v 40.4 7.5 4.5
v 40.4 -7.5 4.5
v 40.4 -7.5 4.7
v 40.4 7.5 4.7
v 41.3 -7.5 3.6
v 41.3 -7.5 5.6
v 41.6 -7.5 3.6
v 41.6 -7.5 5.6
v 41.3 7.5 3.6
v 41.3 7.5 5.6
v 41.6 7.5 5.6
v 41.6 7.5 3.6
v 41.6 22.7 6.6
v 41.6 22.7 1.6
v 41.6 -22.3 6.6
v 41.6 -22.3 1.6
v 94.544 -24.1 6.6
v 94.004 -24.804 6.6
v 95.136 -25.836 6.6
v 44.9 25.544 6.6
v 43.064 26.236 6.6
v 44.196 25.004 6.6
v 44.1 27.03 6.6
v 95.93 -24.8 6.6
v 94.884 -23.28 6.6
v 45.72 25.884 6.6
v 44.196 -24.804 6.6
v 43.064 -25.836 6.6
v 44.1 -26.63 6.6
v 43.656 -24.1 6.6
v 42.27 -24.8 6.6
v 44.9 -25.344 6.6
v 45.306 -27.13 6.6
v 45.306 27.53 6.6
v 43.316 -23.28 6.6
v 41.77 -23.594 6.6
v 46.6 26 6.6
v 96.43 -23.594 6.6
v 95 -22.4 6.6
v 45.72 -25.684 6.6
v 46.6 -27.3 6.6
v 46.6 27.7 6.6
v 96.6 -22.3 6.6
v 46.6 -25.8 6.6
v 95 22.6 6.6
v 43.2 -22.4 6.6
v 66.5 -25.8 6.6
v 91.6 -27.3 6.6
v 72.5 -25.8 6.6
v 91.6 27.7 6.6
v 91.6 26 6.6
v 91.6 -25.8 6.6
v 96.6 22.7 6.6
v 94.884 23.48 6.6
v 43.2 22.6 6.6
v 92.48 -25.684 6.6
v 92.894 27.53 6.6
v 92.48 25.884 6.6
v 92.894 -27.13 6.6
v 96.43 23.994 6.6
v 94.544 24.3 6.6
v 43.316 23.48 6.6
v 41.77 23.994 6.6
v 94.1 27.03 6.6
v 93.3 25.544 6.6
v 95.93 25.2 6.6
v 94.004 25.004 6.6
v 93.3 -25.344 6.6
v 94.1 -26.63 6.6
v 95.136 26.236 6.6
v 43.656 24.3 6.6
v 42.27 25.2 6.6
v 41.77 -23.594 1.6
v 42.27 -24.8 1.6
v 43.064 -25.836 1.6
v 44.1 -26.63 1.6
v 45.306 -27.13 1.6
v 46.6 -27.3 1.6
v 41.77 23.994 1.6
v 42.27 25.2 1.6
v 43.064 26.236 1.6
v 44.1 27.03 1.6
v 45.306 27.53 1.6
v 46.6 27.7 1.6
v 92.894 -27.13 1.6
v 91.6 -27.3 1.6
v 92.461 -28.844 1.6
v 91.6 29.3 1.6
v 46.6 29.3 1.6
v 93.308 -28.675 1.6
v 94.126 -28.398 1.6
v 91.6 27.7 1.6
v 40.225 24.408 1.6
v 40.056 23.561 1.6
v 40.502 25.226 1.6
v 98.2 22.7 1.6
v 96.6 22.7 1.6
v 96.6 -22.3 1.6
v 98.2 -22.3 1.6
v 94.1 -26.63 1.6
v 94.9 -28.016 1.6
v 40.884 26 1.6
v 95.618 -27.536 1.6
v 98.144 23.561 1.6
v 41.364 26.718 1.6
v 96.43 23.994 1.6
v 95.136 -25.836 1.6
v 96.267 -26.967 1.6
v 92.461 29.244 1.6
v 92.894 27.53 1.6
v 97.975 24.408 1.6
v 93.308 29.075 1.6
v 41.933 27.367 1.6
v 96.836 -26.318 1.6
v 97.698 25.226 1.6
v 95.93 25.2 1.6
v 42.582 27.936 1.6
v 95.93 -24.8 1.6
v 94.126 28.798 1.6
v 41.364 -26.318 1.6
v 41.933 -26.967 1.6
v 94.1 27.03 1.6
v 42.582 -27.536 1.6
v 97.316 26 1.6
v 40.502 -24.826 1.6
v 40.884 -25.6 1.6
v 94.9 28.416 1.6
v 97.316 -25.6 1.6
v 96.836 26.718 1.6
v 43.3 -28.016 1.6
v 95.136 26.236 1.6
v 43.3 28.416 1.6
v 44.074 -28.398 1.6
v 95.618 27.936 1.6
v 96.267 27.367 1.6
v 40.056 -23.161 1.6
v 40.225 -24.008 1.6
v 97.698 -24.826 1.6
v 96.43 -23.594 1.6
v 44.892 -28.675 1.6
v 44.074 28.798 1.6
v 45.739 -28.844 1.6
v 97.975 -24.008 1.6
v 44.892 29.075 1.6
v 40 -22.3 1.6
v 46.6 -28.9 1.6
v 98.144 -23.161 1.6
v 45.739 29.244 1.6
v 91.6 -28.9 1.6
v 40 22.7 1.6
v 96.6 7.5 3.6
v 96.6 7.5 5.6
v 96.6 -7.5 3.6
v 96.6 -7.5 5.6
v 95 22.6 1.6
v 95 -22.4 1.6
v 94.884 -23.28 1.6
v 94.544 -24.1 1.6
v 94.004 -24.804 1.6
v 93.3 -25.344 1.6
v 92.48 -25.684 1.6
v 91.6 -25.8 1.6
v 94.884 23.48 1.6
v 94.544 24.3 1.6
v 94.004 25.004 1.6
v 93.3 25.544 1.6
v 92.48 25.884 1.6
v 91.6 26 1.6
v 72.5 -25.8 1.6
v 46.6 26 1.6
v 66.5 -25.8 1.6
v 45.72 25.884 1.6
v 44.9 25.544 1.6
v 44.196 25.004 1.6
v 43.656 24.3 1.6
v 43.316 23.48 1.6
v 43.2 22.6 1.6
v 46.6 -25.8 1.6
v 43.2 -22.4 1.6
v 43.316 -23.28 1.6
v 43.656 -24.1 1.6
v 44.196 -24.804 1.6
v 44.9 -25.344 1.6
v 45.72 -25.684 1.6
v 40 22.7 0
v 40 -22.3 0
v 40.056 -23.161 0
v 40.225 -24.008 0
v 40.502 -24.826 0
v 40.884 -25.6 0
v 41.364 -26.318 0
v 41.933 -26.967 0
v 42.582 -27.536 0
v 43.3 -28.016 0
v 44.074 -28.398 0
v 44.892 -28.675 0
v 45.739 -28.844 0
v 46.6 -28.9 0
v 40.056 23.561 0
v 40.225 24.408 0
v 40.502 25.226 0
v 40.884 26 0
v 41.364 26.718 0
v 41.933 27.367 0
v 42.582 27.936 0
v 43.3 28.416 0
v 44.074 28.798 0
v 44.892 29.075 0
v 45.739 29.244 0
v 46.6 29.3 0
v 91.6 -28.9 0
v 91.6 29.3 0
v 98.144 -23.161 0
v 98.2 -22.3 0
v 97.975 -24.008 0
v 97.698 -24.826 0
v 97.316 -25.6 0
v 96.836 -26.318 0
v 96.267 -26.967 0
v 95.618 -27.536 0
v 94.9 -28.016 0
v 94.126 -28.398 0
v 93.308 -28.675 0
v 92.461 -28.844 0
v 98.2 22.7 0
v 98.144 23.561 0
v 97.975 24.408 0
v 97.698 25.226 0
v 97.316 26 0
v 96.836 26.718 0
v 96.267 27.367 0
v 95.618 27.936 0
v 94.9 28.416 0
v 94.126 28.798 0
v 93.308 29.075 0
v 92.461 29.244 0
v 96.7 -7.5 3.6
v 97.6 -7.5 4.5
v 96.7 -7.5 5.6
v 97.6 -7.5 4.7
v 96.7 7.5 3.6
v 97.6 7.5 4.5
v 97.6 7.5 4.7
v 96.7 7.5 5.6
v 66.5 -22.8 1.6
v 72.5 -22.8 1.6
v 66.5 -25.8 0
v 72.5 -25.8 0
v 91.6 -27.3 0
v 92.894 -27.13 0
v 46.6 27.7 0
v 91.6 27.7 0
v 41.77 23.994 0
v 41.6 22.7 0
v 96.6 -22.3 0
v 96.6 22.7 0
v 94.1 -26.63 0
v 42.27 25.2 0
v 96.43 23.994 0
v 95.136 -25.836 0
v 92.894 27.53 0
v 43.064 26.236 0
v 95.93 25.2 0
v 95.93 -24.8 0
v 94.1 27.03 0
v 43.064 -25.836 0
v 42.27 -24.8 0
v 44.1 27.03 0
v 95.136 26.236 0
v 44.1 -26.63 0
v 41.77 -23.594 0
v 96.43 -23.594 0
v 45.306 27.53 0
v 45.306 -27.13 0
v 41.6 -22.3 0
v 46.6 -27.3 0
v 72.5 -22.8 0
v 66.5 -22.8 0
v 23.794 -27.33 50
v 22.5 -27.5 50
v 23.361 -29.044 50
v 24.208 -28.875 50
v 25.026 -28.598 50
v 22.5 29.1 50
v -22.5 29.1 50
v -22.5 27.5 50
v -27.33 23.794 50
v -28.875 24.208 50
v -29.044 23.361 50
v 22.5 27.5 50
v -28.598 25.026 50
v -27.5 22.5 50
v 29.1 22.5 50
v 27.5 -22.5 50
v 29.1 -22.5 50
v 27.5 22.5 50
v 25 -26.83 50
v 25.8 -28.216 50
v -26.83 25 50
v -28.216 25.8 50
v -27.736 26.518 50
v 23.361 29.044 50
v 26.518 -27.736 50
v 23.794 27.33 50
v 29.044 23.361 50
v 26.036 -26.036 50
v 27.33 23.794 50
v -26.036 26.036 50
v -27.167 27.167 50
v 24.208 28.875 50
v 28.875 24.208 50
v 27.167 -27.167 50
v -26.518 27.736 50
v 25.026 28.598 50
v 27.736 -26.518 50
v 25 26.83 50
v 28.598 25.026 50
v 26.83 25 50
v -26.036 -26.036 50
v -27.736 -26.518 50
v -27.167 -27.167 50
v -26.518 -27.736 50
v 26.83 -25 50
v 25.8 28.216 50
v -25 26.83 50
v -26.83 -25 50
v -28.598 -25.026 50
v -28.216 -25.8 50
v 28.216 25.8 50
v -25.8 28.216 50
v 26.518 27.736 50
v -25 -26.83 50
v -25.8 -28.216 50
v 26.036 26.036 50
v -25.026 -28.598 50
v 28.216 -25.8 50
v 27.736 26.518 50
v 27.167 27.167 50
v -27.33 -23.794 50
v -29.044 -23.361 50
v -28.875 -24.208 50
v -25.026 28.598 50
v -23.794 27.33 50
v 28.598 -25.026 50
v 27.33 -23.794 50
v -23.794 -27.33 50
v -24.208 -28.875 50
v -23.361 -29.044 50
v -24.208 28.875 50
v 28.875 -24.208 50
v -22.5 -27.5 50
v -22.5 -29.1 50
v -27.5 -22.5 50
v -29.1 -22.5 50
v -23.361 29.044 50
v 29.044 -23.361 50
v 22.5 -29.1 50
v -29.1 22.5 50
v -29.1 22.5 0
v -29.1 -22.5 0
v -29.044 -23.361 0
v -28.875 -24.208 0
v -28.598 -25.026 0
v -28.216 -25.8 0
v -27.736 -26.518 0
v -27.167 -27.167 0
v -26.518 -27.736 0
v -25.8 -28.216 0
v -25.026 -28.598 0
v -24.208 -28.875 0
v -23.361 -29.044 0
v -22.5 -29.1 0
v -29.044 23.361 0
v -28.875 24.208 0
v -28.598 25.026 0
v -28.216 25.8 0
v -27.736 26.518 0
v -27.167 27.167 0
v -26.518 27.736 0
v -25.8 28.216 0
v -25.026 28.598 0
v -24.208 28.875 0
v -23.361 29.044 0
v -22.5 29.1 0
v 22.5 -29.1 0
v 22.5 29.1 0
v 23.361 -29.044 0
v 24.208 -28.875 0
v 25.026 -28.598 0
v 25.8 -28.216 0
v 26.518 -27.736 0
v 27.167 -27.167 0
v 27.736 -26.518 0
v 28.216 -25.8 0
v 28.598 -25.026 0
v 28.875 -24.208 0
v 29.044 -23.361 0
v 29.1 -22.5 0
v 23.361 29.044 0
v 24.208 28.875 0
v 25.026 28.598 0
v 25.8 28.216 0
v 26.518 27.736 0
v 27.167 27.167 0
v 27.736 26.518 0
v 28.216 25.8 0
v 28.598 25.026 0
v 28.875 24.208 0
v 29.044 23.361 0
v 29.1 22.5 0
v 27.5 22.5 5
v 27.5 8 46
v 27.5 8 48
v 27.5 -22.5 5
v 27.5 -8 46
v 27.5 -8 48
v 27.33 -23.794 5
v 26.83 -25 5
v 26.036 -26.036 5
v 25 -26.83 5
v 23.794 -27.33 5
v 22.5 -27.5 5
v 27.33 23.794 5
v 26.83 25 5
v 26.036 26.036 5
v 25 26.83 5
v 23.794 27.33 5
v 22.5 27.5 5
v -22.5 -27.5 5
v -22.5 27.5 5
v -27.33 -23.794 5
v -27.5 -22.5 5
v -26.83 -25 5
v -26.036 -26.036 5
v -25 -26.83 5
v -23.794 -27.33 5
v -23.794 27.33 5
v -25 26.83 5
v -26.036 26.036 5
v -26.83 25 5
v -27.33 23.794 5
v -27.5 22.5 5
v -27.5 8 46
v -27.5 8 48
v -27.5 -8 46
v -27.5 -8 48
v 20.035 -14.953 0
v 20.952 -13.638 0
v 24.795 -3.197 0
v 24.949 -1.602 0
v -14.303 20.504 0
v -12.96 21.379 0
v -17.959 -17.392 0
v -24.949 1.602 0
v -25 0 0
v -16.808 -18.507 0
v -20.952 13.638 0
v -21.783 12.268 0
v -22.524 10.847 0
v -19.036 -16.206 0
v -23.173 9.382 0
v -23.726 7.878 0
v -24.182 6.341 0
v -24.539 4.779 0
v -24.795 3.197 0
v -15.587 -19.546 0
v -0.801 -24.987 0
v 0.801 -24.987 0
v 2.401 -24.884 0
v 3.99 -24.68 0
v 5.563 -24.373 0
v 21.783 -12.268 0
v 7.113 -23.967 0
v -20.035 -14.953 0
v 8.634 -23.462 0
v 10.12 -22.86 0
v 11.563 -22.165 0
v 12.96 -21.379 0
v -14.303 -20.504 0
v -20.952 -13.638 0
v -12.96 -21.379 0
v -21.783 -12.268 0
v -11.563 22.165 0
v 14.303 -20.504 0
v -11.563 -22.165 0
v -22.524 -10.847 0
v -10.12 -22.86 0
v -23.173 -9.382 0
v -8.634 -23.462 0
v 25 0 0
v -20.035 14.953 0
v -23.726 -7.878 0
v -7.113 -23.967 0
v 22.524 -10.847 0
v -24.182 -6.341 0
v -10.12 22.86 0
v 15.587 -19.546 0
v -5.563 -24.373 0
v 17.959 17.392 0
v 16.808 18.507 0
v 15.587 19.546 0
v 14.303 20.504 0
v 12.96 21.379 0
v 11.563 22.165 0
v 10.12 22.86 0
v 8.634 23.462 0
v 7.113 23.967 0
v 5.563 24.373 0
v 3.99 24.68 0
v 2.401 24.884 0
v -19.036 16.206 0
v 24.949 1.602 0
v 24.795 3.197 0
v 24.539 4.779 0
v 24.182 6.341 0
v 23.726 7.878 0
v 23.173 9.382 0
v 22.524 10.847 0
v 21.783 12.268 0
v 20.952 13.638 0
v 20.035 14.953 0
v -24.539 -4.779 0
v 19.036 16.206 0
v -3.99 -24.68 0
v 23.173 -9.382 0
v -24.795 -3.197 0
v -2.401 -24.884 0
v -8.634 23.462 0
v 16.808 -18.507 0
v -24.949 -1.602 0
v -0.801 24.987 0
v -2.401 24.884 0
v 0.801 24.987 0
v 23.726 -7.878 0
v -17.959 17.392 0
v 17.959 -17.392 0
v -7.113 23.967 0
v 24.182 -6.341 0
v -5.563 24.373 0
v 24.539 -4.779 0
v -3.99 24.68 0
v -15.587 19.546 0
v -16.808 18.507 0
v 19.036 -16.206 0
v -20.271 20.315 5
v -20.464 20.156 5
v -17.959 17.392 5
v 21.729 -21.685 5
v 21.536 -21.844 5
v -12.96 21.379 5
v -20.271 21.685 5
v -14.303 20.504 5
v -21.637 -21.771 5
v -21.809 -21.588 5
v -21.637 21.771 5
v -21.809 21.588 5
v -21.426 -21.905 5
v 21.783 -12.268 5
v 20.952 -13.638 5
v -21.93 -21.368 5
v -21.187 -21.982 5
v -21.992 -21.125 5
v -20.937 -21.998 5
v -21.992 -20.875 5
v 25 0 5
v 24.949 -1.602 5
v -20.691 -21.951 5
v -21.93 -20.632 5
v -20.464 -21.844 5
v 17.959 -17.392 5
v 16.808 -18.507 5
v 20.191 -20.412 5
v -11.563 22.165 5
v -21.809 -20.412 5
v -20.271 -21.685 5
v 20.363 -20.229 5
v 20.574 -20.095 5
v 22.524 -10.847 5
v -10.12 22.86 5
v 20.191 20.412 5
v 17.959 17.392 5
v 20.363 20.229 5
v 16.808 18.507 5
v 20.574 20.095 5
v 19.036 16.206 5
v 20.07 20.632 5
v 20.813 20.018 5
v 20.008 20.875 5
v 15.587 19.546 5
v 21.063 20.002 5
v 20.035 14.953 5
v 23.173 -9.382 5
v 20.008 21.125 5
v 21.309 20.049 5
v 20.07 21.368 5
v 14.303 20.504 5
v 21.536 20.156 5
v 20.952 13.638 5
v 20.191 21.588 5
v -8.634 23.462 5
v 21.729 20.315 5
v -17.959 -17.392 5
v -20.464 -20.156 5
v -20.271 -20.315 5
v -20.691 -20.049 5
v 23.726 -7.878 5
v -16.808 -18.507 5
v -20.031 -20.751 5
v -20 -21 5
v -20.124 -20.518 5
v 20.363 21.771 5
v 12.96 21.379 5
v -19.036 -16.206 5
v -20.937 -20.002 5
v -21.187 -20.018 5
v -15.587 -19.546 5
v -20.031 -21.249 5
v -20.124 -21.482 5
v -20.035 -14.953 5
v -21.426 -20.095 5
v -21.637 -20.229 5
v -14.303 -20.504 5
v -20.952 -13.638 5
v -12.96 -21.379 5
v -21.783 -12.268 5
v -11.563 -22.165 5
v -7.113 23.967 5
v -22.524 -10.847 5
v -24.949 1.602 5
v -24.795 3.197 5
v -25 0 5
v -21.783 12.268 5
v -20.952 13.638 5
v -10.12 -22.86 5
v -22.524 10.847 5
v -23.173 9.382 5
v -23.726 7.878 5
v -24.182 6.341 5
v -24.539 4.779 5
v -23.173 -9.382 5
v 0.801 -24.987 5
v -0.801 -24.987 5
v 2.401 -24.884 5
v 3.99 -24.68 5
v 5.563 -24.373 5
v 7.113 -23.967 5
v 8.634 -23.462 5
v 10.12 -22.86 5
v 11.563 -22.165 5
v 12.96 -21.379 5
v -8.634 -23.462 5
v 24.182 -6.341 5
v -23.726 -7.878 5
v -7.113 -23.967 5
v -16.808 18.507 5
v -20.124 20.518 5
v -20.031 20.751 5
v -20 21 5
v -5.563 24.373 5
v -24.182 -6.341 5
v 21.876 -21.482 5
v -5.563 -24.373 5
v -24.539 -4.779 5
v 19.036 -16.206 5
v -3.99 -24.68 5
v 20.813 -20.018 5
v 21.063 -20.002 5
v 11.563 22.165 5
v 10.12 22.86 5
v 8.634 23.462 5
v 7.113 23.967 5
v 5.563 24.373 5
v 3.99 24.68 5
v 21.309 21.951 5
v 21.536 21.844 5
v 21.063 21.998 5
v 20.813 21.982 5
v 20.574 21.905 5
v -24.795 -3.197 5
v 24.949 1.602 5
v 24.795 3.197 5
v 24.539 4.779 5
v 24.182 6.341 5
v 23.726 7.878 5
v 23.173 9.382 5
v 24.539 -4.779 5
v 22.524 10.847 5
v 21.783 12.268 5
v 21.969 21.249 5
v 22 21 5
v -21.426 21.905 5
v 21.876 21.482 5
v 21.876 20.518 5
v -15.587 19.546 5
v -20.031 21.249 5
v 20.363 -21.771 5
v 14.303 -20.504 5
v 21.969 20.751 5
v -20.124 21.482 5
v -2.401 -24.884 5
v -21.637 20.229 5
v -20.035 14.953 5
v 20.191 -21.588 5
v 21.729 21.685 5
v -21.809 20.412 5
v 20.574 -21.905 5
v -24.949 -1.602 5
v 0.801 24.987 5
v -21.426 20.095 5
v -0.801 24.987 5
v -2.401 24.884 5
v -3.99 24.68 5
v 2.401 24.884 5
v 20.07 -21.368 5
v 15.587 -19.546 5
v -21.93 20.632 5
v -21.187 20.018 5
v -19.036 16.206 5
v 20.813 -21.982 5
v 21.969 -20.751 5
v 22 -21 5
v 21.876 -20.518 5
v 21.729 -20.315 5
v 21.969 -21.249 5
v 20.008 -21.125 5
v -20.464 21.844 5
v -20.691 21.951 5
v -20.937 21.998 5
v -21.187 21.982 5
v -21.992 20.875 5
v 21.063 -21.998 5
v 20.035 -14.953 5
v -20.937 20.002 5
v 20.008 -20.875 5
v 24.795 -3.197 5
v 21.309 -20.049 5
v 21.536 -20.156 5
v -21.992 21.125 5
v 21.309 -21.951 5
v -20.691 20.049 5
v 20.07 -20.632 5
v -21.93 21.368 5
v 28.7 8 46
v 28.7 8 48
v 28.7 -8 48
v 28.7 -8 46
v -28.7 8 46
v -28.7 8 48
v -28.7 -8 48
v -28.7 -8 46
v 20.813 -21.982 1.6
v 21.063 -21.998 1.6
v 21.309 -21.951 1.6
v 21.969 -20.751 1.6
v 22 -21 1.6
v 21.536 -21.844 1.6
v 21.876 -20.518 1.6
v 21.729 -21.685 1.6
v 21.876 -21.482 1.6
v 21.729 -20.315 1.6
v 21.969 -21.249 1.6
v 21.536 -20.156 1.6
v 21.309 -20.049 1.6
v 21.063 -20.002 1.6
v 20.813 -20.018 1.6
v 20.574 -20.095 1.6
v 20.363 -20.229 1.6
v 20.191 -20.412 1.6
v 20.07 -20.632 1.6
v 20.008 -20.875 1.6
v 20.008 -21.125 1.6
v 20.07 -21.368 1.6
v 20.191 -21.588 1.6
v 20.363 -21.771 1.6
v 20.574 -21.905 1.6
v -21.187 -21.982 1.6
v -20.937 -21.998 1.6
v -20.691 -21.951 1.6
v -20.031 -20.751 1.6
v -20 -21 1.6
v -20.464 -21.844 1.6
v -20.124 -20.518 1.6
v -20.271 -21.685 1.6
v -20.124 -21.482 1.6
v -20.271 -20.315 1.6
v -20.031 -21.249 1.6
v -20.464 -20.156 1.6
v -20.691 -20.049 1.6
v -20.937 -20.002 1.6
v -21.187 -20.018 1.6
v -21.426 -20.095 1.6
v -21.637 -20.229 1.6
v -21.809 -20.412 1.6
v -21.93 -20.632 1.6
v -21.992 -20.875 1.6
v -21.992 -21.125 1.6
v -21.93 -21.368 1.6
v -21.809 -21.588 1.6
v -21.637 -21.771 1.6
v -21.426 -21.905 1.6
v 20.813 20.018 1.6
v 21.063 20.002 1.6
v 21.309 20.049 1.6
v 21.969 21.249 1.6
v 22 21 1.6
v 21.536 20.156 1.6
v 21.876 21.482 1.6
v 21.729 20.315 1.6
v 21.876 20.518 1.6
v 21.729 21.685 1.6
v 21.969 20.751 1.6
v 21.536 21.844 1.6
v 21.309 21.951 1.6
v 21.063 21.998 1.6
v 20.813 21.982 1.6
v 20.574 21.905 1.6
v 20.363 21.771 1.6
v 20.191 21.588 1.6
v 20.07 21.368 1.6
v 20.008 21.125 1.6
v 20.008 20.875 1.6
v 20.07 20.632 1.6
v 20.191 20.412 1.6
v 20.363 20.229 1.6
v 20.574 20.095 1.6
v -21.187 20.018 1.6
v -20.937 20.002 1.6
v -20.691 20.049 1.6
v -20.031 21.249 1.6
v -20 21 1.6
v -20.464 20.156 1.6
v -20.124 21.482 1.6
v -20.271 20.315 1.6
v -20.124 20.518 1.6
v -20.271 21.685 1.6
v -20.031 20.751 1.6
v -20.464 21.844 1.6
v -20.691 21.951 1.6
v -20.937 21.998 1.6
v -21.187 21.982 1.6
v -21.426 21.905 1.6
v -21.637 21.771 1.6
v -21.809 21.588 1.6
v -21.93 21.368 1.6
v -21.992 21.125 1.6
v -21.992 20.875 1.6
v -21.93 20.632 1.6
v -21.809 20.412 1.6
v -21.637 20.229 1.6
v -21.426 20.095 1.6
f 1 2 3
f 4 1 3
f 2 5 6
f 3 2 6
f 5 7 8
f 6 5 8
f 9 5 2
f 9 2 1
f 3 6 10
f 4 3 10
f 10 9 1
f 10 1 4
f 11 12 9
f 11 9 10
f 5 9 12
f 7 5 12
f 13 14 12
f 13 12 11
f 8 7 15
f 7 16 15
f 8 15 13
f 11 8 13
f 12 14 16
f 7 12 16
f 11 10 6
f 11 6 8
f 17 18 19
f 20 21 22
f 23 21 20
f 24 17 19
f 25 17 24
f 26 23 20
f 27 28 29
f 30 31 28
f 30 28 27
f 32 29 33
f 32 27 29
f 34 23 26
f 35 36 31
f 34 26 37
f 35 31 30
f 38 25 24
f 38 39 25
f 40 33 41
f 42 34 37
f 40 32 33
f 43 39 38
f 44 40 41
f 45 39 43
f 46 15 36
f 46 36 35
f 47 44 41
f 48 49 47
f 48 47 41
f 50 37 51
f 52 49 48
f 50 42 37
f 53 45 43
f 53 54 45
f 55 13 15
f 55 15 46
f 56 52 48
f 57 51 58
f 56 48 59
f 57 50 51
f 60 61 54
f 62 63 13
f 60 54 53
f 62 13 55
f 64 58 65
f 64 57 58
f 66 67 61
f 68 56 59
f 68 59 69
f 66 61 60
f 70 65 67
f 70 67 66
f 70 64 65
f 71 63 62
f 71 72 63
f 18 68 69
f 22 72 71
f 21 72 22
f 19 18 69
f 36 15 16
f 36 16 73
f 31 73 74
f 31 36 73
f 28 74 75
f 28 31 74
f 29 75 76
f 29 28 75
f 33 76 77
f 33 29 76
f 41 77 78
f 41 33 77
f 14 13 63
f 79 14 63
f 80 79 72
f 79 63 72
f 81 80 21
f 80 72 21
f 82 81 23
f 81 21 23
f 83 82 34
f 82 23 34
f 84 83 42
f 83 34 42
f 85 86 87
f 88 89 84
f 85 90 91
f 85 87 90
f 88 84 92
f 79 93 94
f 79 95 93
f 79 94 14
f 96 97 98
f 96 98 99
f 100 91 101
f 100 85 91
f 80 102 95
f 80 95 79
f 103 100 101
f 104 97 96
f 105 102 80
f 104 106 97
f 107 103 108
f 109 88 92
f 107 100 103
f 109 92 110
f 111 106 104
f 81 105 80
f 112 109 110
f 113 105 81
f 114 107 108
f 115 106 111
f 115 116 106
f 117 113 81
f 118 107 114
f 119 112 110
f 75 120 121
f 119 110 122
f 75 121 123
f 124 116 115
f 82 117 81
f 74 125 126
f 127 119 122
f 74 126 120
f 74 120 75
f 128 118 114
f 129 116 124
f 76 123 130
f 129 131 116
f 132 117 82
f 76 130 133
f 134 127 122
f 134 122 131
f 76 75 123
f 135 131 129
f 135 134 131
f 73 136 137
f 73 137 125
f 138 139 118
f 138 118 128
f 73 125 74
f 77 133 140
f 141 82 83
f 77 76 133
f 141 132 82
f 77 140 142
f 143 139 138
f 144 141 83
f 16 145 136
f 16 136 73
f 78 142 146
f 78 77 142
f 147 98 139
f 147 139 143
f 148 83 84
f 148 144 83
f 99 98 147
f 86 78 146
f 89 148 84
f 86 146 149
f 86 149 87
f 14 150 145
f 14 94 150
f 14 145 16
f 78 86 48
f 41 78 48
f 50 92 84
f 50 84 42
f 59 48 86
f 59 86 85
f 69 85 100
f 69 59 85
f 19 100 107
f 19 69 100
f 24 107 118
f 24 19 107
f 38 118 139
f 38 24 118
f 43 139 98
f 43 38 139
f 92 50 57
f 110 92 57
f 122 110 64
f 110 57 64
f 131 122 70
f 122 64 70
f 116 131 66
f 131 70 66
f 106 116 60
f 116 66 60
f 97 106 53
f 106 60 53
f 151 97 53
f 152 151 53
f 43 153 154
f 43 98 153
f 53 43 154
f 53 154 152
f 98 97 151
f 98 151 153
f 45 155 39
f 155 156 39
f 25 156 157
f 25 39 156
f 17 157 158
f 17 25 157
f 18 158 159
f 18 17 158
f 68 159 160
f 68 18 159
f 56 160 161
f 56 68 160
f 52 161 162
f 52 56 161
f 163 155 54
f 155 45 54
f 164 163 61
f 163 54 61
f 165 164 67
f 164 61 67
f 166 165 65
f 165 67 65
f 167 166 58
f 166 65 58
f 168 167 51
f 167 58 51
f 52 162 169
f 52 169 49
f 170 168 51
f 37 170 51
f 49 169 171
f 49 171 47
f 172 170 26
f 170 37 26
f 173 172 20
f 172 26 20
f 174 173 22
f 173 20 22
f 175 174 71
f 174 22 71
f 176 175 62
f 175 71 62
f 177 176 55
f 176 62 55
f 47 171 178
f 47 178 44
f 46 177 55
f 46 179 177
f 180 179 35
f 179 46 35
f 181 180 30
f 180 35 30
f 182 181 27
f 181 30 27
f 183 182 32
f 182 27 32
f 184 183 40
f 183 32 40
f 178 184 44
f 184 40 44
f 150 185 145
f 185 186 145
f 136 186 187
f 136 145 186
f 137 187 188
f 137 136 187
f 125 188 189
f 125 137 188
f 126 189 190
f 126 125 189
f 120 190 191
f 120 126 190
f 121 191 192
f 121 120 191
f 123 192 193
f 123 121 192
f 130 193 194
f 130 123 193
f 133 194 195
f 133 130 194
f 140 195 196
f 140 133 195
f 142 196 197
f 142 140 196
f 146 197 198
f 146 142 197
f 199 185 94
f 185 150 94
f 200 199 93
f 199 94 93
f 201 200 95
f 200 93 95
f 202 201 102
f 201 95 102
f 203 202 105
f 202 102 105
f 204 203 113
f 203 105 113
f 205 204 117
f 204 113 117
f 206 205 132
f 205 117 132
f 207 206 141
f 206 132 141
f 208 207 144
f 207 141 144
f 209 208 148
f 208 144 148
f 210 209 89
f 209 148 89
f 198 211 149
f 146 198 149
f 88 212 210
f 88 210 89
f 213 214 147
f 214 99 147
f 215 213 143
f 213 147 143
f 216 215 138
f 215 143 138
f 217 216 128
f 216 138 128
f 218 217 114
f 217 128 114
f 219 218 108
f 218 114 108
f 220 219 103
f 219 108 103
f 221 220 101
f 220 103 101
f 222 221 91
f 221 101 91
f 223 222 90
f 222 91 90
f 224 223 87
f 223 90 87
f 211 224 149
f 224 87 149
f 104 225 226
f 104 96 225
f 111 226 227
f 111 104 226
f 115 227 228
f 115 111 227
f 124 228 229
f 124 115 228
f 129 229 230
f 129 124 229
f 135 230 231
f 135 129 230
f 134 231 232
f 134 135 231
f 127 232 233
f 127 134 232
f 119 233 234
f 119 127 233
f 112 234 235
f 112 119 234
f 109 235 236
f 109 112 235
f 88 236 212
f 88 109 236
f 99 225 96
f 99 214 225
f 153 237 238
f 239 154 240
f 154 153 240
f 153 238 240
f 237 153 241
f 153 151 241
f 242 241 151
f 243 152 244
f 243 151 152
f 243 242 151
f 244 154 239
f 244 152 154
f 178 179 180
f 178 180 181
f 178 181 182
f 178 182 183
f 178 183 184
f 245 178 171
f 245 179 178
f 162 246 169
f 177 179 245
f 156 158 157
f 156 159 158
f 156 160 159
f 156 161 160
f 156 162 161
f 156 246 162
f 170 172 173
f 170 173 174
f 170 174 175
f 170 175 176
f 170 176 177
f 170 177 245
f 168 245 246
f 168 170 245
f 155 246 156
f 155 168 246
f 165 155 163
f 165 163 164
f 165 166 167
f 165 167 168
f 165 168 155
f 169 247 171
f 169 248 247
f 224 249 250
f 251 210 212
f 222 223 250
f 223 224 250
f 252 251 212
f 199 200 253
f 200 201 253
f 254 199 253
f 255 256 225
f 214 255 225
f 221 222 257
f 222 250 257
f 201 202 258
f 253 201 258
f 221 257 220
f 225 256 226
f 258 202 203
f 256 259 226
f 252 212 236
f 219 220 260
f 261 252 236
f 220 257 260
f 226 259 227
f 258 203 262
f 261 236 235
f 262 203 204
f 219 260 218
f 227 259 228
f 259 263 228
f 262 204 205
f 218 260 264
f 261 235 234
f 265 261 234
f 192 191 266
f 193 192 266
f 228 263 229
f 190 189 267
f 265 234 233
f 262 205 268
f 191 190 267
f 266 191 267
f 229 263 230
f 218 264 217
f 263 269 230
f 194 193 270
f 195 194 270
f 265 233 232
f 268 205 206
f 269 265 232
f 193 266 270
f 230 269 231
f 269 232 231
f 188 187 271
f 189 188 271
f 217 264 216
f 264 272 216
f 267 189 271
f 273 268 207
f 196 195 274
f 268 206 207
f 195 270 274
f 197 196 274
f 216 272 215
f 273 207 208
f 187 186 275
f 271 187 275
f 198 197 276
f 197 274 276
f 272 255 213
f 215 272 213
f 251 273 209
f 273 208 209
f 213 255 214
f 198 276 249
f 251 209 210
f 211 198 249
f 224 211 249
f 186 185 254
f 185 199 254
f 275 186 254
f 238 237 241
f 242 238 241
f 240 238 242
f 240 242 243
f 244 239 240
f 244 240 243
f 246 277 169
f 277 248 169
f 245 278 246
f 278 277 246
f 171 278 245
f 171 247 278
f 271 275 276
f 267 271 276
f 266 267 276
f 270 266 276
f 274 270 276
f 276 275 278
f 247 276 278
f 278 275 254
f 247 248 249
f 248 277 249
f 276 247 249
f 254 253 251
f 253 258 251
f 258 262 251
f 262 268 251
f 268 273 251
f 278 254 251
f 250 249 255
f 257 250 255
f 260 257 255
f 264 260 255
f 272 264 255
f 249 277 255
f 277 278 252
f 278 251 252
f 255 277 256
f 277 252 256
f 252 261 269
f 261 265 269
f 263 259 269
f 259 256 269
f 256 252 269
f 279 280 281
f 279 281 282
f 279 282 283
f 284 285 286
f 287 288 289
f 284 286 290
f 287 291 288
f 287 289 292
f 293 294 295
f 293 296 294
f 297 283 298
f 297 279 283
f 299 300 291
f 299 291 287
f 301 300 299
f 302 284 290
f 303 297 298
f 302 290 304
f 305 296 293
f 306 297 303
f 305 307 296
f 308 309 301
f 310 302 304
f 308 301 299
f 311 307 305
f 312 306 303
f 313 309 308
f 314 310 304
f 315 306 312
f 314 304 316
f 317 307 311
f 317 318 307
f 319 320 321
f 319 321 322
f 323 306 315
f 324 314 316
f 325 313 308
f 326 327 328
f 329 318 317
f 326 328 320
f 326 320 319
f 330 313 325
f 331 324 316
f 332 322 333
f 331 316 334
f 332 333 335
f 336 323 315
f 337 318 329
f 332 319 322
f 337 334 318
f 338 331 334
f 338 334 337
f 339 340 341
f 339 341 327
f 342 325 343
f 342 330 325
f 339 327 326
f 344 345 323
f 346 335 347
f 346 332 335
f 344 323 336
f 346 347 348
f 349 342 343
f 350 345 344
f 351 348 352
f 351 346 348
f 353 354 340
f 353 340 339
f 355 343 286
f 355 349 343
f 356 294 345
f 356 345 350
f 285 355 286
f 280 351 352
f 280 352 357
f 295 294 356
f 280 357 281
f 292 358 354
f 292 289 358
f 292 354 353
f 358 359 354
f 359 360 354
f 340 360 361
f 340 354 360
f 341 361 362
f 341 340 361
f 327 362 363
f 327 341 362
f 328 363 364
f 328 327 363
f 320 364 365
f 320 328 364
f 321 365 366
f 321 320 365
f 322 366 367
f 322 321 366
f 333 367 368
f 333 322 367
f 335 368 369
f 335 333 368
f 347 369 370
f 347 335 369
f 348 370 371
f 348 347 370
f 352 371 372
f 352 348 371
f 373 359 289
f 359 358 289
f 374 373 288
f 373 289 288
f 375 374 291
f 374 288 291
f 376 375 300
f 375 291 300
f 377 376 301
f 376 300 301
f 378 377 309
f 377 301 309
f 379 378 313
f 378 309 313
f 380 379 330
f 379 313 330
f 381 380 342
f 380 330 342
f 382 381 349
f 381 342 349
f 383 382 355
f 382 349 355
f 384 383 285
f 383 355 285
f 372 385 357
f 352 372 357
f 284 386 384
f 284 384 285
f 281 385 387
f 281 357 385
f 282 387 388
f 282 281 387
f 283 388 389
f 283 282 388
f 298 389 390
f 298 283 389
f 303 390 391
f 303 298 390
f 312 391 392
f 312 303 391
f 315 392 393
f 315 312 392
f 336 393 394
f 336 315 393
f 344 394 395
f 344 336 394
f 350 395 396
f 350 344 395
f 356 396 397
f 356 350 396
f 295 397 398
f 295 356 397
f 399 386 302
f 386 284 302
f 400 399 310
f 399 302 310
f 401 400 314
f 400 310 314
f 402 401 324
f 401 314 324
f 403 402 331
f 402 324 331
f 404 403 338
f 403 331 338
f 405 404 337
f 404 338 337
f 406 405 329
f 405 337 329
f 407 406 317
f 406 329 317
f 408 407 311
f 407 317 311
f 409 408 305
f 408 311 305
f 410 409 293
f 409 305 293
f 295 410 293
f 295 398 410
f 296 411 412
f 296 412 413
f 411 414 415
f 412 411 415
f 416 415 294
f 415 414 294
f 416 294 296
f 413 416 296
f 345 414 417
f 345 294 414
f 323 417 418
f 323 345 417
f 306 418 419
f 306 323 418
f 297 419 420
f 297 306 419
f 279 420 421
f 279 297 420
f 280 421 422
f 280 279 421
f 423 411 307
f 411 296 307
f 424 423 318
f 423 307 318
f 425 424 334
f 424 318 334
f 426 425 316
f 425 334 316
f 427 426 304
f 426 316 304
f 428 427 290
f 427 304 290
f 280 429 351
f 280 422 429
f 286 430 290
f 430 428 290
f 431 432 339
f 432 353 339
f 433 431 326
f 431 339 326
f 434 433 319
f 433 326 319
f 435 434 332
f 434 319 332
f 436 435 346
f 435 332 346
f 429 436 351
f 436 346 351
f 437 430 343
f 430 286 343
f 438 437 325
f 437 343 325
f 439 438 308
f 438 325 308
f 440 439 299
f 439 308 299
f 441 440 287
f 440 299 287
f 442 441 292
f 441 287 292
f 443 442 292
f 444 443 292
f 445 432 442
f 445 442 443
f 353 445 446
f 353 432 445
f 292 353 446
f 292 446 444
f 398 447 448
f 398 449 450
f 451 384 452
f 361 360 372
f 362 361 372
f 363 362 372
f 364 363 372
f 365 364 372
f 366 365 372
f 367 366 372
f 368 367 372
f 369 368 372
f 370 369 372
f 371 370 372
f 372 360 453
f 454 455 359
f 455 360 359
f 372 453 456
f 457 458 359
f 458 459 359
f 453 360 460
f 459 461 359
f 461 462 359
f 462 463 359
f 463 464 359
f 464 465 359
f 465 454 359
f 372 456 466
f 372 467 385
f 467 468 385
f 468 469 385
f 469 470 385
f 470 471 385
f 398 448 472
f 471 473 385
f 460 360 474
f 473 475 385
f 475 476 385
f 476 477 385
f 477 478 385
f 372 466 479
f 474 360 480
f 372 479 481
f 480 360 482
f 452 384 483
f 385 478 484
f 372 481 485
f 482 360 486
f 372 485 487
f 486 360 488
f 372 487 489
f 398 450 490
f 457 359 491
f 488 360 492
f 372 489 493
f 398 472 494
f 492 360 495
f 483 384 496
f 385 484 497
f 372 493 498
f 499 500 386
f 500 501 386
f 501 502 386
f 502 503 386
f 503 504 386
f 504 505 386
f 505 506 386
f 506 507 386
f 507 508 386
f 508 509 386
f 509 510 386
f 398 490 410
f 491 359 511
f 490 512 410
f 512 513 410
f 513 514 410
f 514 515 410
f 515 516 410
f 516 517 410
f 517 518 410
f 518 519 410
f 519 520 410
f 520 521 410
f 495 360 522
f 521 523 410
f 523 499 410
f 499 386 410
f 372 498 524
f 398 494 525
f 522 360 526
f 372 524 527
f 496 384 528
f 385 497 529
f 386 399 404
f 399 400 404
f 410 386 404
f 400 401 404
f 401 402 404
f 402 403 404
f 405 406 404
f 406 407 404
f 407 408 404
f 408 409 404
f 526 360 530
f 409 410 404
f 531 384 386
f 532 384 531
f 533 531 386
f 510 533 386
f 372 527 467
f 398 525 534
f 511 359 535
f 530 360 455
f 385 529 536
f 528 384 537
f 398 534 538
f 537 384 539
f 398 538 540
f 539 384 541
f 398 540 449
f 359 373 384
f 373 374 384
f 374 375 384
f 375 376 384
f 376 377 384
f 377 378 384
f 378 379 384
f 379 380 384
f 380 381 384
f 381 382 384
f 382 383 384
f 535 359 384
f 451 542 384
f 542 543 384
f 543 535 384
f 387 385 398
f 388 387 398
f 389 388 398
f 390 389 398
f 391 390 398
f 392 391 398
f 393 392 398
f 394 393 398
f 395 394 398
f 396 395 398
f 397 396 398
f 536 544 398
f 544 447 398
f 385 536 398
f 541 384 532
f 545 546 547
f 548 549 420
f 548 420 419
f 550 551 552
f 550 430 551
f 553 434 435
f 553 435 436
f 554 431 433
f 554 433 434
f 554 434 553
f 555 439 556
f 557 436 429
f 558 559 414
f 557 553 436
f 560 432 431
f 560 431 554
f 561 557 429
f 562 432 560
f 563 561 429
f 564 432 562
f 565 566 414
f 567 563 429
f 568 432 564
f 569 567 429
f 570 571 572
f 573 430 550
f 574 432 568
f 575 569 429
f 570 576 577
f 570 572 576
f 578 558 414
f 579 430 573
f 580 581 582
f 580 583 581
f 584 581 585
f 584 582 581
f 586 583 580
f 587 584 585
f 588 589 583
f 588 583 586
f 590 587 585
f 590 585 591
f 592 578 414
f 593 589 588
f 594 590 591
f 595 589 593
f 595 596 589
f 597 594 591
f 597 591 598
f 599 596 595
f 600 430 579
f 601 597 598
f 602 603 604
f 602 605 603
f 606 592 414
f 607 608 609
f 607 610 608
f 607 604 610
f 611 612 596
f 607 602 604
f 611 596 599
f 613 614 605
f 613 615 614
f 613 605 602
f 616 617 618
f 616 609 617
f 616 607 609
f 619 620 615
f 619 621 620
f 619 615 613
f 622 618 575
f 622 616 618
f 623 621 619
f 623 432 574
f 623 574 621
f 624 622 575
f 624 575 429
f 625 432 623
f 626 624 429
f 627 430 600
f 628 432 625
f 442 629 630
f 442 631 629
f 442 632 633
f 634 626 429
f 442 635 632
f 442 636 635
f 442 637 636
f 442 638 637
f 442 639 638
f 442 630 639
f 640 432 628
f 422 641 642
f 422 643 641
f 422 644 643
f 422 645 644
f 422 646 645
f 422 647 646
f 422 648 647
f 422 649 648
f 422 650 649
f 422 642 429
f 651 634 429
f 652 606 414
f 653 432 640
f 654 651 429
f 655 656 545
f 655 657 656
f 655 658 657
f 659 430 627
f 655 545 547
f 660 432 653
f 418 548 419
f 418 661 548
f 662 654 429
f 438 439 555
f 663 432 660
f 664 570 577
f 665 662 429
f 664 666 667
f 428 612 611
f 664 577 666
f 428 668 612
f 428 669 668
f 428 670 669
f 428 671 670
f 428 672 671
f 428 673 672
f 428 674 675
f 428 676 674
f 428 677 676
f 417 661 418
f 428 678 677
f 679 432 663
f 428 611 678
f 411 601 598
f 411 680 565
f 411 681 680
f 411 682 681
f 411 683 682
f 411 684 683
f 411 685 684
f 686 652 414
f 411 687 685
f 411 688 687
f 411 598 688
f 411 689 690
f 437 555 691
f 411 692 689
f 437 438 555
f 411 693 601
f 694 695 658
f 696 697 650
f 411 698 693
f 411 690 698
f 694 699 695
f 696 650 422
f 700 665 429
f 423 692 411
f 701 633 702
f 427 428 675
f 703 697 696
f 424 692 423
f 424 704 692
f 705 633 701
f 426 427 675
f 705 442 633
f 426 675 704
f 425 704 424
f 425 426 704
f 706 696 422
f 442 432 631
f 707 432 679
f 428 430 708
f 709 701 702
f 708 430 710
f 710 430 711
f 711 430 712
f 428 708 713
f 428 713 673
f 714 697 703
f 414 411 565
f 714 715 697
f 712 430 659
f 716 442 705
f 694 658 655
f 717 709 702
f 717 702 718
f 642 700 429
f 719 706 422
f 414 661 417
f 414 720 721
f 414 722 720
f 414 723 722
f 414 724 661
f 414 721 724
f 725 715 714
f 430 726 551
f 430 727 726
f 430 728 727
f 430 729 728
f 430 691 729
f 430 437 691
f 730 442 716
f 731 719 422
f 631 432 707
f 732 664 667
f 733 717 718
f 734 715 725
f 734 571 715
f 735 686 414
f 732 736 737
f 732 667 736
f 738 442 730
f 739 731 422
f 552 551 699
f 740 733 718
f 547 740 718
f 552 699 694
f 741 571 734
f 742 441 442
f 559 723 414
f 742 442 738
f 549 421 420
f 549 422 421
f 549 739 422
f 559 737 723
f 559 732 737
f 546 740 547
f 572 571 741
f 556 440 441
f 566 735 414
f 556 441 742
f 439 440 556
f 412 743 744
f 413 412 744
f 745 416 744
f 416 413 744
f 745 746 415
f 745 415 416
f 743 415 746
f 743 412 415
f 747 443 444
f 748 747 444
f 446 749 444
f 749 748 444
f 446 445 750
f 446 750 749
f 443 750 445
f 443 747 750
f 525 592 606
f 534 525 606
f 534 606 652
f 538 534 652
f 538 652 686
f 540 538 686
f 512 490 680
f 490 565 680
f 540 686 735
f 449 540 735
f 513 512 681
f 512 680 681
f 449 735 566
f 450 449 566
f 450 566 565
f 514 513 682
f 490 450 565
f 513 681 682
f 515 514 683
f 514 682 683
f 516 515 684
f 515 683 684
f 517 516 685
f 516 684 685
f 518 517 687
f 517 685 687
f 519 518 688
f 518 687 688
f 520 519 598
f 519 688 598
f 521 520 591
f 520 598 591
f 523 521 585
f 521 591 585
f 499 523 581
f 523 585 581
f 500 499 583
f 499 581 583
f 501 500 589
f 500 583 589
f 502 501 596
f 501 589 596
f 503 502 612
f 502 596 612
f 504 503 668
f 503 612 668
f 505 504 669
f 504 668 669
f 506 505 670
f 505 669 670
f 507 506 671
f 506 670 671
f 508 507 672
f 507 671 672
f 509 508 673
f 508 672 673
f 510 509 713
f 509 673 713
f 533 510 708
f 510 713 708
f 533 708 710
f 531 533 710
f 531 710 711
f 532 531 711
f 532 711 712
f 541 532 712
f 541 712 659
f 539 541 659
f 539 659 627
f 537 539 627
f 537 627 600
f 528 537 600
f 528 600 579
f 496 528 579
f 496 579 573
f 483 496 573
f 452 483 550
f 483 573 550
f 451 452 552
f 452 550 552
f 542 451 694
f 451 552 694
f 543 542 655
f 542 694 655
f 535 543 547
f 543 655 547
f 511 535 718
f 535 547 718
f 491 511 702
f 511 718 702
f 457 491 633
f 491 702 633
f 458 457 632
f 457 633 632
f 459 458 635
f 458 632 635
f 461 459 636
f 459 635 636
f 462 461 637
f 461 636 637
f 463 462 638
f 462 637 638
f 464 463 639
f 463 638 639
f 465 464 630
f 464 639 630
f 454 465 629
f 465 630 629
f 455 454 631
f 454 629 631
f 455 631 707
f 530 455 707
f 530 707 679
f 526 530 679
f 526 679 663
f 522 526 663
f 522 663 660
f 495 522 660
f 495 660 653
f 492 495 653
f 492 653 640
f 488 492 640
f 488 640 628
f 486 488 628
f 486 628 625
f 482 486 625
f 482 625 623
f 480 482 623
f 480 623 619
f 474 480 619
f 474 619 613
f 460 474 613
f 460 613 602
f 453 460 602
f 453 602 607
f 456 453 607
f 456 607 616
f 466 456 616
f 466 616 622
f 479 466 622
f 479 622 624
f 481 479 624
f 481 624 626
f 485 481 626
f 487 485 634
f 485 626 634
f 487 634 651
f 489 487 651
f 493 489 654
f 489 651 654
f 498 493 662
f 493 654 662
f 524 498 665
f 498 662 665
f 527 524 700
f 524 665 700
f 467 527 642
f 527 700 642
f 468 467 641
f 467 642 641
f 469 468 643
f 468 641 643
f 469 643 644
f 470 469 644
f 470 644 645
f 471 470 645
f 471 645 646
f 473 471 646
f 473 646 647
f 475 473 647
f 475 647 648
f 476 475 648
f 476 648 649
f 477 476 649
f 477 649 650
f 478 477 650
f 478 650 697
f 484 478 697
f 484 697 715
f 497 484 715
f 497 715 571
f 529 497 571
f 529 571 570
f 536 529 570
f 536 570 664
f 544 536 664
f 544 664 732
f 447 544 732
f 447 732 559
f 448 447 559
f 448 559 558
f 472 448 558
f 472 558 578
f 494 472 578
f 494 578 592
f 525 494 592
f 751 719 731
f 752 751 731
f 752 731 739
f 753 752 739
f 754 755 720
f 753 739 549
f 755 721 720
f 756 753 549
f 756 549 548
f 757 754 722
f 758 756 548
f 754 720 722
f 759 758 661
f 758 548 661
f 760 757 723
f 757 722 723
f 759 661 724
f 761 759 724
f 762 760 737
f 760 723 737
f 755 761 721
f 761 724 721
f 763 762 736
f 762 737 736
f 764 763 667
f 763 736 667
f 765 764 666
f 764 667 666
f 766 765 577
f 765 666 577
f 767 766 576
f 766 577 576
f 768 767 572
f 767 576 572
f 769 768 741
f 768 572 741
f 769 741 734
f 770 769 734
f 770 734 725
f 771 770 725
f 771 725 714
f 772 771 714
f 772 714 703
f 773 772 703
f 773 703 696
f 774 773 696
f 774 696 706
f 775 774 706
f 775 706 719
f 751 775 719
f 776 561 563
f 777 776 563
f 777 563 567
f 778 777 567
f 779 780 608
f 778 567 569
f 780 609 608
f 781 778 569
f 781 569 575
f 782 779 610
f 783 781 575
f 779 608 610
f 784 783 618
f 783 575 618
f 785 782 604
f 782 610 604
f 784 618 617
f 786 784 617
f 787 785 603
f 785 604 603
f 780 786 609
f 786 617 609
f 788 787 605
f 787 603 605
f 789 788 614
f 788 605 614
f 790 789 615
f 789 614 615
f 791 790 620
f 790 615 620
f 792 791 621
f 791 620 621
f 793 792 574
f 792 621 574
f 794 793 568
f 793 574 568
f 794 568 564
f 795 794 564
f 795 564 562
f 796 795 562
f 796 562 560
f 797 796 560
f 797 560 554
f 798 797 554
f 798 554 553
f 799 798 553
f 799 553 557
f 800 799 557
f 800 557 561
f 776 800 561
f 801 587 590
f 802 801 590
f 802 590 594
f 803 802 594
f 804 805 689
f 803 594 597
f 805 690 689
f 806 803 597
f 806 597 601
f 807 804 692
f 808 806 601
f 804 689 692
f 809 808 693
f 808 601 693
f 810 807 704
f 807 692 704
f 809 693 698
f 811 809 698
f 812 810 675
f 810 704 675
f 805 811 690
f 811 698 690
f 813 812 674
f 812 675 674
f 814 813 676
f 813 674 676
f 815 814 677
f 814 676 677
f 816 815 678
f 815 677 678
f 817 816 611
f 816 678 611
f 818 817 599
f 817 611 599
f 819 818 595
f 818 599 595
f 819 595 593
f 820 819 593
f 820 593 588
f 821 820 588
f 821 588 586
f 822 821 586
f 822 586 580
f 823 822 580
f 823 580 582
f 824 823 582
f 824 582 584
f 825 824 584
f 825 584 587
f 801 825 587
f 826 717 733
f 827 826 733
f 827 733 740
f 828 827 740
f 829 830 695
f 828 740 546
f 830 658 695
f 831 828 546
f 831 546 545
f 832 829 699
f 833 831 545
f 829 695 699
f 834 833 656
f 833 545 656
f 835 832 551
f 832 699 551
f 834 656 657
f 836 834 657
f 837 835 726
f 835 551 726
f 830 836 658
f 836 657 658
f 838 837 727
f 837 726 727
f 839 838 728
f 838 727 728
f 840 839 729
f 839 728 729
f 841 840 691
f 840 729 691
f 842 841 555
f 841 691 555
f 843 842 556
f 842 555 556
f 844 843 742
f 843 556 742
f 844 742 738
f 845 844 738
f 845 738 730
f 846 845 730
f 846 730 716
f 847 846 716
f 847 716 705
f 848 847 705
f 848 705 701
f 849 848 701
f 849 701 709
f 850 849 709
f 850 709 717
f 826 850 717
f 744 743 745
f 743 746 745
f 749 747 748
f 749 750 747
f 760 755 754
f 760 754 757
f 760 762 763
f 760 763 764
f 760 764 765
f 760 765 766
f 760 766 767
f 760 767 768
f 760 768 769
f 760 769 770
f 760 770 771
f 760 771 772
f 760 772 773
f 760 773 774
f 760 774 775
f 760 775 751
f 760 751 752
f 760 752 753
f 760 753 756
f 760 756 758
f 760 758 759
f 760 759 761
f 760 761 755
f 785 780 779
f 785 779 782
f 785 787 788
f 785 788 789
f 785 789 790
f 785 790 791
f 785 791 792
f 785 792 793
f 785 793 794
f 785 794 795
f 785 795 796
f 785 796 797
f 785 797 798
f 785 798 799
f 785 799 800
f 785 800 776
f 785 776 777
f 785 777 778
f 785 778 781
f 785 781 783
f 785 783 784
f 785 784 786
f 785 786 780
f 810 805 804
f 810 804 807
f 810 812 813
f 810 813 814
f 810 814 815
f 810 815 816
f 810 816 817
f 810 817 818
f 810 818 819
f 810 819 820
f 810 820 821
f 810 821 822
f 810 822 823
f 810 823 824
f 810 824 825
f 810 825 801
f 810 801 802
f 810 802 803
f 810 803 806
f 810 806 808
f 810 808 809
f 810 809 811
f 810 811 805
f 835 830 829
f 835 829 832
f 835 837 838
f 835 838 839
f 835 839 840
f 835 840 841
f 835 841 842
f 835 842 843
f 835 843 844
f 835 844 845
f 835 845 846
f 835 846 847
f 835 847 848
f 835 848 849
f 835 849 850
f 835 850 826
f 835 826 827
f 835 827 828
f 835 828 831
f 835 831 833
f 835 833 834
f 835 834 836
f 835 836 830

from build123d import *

# Parameters (mm, degrees)
BOX006_W          = 57.4
BOX006_H          = 16
BOX006_DEPTH      = 2
BOX005_W          = 6
BOX005_H          = 3
BOX005_DEPTH      = 10
BOX004_W          = 51.8
BOX004_H          = 51.8
BOX004_DEPTH      = 5
BOX003_W          = 55
BOX003_H          = 55
BOX003_DEPTH      = 6.6
FILLET003_R       = 3.4
FILLET004_R       = 5
BOX002_W          = 58.2
BOX002_H          = 58.2
BOX002_DEPTH      = 1.6
FILLET002_R       = 6.6
CYLINDER003_R     = 1
CYLINDER003_DEPTH = 10
CYLINDER002_R     = 1
CYLINDER002_DEPTH = 10
CYLINDER001_R     = 1
CYLINDER001_DEPTH = 10
CYLINDER004_R     = 1
CYLINDER004_DEPTH = 10
CYLINDER_R        = 25
CYLINDER_DEPTH    = 5
BOX_W             = 55
BOX_H             = 55
BOX_DEPTH         = 50
BOX001_W          = 58.2
BOX001_H          = 58.2
BOX001_DEPTH      = 50
FILLET_R          = 5
FILLET001_R       = 6.6
BOX008_W          = 1.2
BOX008_H          = 15
BOX008_DEPTH      = 2
CHAMFER001_SIZE   = 0.9
BOX007_W          = 1.2
BOX007_H          = 15
BOX007_DEPTH      = 2
CHAMFER_SIZE      = 0.9


with BuildPart() as w_rfel006:
    # Box006 → Box006 (new body)
    with BuildSketch(Plane(origin=(-28.7, -8, 46), x_dir=(1, 0, 0), z_dir=(0, 0, 1))):
        with Locations((28.7, 8)):
            Rectangle(BOX006_W, BOX006_H)
    extrude(amount=BOX006_DEPTH)


with BuildPart() as w_rfel005:
    # Box005 → Box005 (new body)
    with BuildSketch(Plane(origin=(66.5, -25.8, 0), x_dir=(1, 0, 0), z_dir=(0, 0, 1))):
        with Locations((3, 1.5)):
            Rectangle(BOX005_W, BOX005_H)
    extrude(amount=BOX005_DEPTH)


with BuildPart() as w_rfel004:
    # Box004 → Box004 (new body)
    with BuildSketch(Plane(origin=(43.2, -25.8, 1.6), x_dir=(1, 0, 0), z_dir=(0, 0, 1))):
        with Locations((25.9, 25.9)):
            Rectangle(BOX004_W, BOX004_H)
    extrude(amount=BOX004_DEPTH)


with BuildPart() as fillet004:
    # Box003 → Box003 (new body)
    with BuildSketch(Plane(origin=(41.6, -27.3, 0), x_dir=(1, 0, 0), z_dir=(0, 0, 1))):
        with Locations((27.5, 27.5)):
            Rectangle(BOX003_W, BOX003_H)
    extrude(amount=BOX003_DEPTH)

    # Cut003: cut Würfel004
    add(w_rfel004.part, mode=Mode.SUBTRACT)

    # Fillet003
    fillet003_edges = [fillet004.edges().sort_by_distance(p)[0] for p in [
        (95, -25.8, 4.1),
        (95, 26, 4.1),
        (43.2, 26, 4.1),
        (43.2, -25.8, 4.1),
    ]]
    fillet(fillet003_edges, radius=FILLET003_R)

    # Fillet004
    fillet004_edges = [fillet004.edges().sort_by_distance(p)[0] for p in [
        (41.6, -27.3, 3.3),
        (41.6, 27.7, 3.3),
        (96.6, 27.7, 3.3),
        (96.6, -27.3, 3.3),
    ]]
    fillet(fillet004_edges, radius=FILLET004_R)


with BuildPart() as cut004:
    # Box002 → Box002 (new body)
    with BuildSketch(Plane(origin=(40, -28.9, 0), x_dir=(1, 0, 0), z_dir=(0, 0, 1))):
        with Locations((29.1, 29.1)):
            Rectangle(BOX002_W, BOX002_H)
    extrude(amount=BOX002_DEPTH)

    # Fillet002
    fillet002_edges = [cut004.edges().sort_by_distance(p)[0] for p in [
        (40, -28.9, 0.8),
        (40, 29.3, 0.8),
        (98.2, -28.9, 0.8),
        (98.2, 29.3, 0.8),
    ]]
    fillet(fillet002_edges, radius=FILLET002_R)

    # Fusion001: union Fillet004
    add(fillet004.part)

    # Cut004: cut Würfel005
    add(w_rfel005.part, mode=Mode.SUBTRACT)


with BuildPart() as zylinder003:
    # Cylinder003 → Cylinder003 (new body)
    with BuildSketch(Plane(origin=(-21, 21, 1.6), x_dir=(1, 0, 0), z_dir=(0, 0, 1))):
        Circle(CYLINDER003_R)
    extrude(amount=CYLINDER003_DEPTH)


with BuildPart() as zylinder002:
    # Cylinder002 → Cylinder002 (new body)
    with BuildSketch(Plane(origin=(21, -21, 1.6), x_dir=(1, 0, 0), z_dir=(0, 0, 1))):
        Circle(CYLINDER002_R)
    extrude(amount=CYLINDER002_DEPTH)


with BuildPart() as zylinder001:
    # Cylinder001 → Cylinder001 (new body)
    with BuildSketch(Plane(origin=(21, 21, 1.6), x_dir=(1, 0, 0), z_dir=(0, 0, 1))):
        Circle(CYLINDER001_R)
    extrude(amount=CYLINDER001_DEPTH)


with BuildPart() as fusion:
    # Cylinder004 → Cylinder004 (new body)
    with BuildSketch(Plane(origin=(-21, -21, 1.6), x_dir=(1, 0, 0), z_dir=(0, 0, 1))):
        Circle(CYLINDER004_R)
    extrude(amount=CYLINDER004_DEPTH)

    # Fusion: union Zylinder003, Zylinder002, Zylinder001
    add(zylinder003.part)
    add(zylinder002.part)
    add(zylinder001.part)


with BuildPart() as zylinder:
    # Cylinder → Cylinder (new body)
    with BuildSketch(Plane.XY):
        Circle(CYLINDER_R)
    extrude(amount=CYLINDER_DEPTH)


with BuildPart() as w_rfel:
    # Box → Box (new body)
    with BuildSketch(Plane(origin=(-27.5, -27.5, 5), x_dir=(1, 0, 0), z_dir=(0, 0, 1))):
        with Locations((27.5, 27.5)):
            Rectangle(BOX_W, BOX_H)
    extrude(amount=BOX_DEPTH)


with BuildPart() as cut005:
    # Box001 → Box001 (new body)
    with BuildSketch(Plane(origin=(-29.1, -29.1, 0), x_dir=(1, 0, 0), z_dir=(0, 0, 1))):
        with Locations((29.1, 29.1)):
            Rectangle(BOX001_W, BOX001_H)
    extrude(amount=BOX001_DEPTH)

    # Cut: cut Würfel
    add(w_rfel.part, mode=Mode.SUBTRACT)

    # Cut001: cut Zylinder
    add(zylinder.part, mode=Mode.SUBTRACT)

    # Fillet
    fillet_edges = [cut005.edges().sort_by_distance(p)[0] for p in [
        (27.5, -27.5, 27.5),
        (27.5, 27.5, 27.5),
        (-27.5, 27.5, 27.5),
        (-27.5, -27.5, 27.5),
    ]]
    fillet(fillet_edges, radius=FILLET_R)

    # Fillet001
    fillet001_edges = [cut005.edges().sort_by_distance(p)[0] for p in [
        (-29.1, -29.1, 25),
        (-29.1, 29.1, 25),
        (29.1, 29.1, 25),
        (29.1, -29.1, 25),
    ]]
    fillet(fillet001_edges, radius=FILLET001_R)

    # Cut002: cut Fusion
    add(fusion.part, mode=Mode.SUBTRACT)

    # Fusion002: union Cut004
    add(cut004.part)

    # Cut005: cut Würfel006
    add(w_rfel006.part, mode=Mode.SUBTRACT)


with BuildPart() as chamfer001:
    # Box008 → Box008 (new body)
    with BuildSketch(Plane(origin=(96.4, -7.5, 3.6), x_dir=(1, 0, 0), z_dir=(0, 0, 1))):
        with Locations((0.6, 7.5)):
            Rectangle(BOX008_W, BOX008_H)
    extrude(amount=BOX008_DEPTH)

    # Chamfer001
    chamfer001_edges = [chamfer001.edges().sort_by_distance(p)[0] for p in [
        (97.6, 0, 5.6),
        (97.6, 0, 3.6),
    ]]
    chamfer(chamfer001_edges, length=CHAMFER001_SIZE)


with BuildPart() as fusion004:
    # Box007 → Box007 (new body)
    with BuildSketch(Plane(origin=(40.4, -7.5, 3.6), x_dir=(1, 0, 0), z_dir=(0, 0, 1))):
        with Locations((0.6, 7.5)):
            Rectangle(BOX007_W, BOX007_H)
    extrude(amount=BOX007_DEPTH)

    # Chamfer
    chamfer_edges = [fusion004.edges().sort_by_distance(p)[0] for p in [
        (40.4, 0, 5.6),
        (40.4, 0, 3.6),
    ]]
    chamfer(chamfer_edges, length=CHAMFER_SIZE)

    # Fusion003: union Chamfer001
    add(chamfer001.part)

    # Fusion004: union Cut005
    add(cut005.part)


solid = fusion004.part
